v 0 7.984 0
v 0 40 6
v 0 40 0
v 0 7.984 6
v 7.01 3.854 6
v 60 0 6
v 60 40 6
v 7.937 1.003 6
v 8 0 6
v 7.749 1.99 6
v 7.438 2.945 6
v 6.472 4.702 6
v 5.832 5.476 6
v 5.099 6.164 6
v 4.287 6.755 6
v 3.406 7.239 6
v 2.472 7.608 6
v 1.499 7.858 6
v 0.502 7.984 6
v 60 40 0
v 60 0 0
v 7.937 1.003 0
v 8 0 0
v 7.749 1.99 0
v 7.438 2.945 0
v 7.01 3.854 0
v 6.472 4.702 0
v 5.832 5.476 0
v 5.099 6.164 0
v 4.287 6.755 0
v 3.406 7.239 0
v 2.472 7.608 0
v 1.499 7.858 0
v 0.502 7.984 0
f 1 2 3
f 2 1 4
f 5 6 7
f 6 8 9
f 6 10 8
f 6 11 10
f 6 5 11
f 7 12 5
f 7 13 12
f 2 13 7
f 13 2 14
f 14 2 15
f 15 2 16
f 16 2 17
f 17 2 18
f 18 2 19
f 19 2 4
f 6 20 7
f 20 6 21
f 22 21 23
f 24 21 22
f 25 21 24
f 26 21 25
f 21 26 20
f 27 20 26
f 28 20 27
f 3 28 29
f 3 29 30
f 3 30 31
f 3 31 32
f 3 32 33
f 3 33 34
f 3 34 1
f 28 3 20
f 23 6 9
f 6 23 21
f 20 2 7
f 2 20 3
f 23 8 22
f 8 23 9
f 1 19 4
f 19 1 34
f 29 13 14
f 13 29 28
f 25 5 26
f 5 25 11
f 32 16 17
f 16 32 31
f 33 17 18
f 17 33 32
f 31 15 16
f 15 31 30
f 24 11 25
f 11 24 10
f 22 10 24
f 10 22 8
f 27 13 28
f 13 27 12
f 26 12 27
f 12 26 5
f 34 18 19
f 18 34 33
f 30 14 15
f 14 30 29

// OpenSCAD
module rectangular_plate(width, height, depth) {
  difference() {
    cube([width, height, depth]);
    translate([0, 0, -0.1])
    cylinder(h = depth + 0.1, r = 8, $fn = 50);
  }
}

rectangular_plate(60, 40, 6);
